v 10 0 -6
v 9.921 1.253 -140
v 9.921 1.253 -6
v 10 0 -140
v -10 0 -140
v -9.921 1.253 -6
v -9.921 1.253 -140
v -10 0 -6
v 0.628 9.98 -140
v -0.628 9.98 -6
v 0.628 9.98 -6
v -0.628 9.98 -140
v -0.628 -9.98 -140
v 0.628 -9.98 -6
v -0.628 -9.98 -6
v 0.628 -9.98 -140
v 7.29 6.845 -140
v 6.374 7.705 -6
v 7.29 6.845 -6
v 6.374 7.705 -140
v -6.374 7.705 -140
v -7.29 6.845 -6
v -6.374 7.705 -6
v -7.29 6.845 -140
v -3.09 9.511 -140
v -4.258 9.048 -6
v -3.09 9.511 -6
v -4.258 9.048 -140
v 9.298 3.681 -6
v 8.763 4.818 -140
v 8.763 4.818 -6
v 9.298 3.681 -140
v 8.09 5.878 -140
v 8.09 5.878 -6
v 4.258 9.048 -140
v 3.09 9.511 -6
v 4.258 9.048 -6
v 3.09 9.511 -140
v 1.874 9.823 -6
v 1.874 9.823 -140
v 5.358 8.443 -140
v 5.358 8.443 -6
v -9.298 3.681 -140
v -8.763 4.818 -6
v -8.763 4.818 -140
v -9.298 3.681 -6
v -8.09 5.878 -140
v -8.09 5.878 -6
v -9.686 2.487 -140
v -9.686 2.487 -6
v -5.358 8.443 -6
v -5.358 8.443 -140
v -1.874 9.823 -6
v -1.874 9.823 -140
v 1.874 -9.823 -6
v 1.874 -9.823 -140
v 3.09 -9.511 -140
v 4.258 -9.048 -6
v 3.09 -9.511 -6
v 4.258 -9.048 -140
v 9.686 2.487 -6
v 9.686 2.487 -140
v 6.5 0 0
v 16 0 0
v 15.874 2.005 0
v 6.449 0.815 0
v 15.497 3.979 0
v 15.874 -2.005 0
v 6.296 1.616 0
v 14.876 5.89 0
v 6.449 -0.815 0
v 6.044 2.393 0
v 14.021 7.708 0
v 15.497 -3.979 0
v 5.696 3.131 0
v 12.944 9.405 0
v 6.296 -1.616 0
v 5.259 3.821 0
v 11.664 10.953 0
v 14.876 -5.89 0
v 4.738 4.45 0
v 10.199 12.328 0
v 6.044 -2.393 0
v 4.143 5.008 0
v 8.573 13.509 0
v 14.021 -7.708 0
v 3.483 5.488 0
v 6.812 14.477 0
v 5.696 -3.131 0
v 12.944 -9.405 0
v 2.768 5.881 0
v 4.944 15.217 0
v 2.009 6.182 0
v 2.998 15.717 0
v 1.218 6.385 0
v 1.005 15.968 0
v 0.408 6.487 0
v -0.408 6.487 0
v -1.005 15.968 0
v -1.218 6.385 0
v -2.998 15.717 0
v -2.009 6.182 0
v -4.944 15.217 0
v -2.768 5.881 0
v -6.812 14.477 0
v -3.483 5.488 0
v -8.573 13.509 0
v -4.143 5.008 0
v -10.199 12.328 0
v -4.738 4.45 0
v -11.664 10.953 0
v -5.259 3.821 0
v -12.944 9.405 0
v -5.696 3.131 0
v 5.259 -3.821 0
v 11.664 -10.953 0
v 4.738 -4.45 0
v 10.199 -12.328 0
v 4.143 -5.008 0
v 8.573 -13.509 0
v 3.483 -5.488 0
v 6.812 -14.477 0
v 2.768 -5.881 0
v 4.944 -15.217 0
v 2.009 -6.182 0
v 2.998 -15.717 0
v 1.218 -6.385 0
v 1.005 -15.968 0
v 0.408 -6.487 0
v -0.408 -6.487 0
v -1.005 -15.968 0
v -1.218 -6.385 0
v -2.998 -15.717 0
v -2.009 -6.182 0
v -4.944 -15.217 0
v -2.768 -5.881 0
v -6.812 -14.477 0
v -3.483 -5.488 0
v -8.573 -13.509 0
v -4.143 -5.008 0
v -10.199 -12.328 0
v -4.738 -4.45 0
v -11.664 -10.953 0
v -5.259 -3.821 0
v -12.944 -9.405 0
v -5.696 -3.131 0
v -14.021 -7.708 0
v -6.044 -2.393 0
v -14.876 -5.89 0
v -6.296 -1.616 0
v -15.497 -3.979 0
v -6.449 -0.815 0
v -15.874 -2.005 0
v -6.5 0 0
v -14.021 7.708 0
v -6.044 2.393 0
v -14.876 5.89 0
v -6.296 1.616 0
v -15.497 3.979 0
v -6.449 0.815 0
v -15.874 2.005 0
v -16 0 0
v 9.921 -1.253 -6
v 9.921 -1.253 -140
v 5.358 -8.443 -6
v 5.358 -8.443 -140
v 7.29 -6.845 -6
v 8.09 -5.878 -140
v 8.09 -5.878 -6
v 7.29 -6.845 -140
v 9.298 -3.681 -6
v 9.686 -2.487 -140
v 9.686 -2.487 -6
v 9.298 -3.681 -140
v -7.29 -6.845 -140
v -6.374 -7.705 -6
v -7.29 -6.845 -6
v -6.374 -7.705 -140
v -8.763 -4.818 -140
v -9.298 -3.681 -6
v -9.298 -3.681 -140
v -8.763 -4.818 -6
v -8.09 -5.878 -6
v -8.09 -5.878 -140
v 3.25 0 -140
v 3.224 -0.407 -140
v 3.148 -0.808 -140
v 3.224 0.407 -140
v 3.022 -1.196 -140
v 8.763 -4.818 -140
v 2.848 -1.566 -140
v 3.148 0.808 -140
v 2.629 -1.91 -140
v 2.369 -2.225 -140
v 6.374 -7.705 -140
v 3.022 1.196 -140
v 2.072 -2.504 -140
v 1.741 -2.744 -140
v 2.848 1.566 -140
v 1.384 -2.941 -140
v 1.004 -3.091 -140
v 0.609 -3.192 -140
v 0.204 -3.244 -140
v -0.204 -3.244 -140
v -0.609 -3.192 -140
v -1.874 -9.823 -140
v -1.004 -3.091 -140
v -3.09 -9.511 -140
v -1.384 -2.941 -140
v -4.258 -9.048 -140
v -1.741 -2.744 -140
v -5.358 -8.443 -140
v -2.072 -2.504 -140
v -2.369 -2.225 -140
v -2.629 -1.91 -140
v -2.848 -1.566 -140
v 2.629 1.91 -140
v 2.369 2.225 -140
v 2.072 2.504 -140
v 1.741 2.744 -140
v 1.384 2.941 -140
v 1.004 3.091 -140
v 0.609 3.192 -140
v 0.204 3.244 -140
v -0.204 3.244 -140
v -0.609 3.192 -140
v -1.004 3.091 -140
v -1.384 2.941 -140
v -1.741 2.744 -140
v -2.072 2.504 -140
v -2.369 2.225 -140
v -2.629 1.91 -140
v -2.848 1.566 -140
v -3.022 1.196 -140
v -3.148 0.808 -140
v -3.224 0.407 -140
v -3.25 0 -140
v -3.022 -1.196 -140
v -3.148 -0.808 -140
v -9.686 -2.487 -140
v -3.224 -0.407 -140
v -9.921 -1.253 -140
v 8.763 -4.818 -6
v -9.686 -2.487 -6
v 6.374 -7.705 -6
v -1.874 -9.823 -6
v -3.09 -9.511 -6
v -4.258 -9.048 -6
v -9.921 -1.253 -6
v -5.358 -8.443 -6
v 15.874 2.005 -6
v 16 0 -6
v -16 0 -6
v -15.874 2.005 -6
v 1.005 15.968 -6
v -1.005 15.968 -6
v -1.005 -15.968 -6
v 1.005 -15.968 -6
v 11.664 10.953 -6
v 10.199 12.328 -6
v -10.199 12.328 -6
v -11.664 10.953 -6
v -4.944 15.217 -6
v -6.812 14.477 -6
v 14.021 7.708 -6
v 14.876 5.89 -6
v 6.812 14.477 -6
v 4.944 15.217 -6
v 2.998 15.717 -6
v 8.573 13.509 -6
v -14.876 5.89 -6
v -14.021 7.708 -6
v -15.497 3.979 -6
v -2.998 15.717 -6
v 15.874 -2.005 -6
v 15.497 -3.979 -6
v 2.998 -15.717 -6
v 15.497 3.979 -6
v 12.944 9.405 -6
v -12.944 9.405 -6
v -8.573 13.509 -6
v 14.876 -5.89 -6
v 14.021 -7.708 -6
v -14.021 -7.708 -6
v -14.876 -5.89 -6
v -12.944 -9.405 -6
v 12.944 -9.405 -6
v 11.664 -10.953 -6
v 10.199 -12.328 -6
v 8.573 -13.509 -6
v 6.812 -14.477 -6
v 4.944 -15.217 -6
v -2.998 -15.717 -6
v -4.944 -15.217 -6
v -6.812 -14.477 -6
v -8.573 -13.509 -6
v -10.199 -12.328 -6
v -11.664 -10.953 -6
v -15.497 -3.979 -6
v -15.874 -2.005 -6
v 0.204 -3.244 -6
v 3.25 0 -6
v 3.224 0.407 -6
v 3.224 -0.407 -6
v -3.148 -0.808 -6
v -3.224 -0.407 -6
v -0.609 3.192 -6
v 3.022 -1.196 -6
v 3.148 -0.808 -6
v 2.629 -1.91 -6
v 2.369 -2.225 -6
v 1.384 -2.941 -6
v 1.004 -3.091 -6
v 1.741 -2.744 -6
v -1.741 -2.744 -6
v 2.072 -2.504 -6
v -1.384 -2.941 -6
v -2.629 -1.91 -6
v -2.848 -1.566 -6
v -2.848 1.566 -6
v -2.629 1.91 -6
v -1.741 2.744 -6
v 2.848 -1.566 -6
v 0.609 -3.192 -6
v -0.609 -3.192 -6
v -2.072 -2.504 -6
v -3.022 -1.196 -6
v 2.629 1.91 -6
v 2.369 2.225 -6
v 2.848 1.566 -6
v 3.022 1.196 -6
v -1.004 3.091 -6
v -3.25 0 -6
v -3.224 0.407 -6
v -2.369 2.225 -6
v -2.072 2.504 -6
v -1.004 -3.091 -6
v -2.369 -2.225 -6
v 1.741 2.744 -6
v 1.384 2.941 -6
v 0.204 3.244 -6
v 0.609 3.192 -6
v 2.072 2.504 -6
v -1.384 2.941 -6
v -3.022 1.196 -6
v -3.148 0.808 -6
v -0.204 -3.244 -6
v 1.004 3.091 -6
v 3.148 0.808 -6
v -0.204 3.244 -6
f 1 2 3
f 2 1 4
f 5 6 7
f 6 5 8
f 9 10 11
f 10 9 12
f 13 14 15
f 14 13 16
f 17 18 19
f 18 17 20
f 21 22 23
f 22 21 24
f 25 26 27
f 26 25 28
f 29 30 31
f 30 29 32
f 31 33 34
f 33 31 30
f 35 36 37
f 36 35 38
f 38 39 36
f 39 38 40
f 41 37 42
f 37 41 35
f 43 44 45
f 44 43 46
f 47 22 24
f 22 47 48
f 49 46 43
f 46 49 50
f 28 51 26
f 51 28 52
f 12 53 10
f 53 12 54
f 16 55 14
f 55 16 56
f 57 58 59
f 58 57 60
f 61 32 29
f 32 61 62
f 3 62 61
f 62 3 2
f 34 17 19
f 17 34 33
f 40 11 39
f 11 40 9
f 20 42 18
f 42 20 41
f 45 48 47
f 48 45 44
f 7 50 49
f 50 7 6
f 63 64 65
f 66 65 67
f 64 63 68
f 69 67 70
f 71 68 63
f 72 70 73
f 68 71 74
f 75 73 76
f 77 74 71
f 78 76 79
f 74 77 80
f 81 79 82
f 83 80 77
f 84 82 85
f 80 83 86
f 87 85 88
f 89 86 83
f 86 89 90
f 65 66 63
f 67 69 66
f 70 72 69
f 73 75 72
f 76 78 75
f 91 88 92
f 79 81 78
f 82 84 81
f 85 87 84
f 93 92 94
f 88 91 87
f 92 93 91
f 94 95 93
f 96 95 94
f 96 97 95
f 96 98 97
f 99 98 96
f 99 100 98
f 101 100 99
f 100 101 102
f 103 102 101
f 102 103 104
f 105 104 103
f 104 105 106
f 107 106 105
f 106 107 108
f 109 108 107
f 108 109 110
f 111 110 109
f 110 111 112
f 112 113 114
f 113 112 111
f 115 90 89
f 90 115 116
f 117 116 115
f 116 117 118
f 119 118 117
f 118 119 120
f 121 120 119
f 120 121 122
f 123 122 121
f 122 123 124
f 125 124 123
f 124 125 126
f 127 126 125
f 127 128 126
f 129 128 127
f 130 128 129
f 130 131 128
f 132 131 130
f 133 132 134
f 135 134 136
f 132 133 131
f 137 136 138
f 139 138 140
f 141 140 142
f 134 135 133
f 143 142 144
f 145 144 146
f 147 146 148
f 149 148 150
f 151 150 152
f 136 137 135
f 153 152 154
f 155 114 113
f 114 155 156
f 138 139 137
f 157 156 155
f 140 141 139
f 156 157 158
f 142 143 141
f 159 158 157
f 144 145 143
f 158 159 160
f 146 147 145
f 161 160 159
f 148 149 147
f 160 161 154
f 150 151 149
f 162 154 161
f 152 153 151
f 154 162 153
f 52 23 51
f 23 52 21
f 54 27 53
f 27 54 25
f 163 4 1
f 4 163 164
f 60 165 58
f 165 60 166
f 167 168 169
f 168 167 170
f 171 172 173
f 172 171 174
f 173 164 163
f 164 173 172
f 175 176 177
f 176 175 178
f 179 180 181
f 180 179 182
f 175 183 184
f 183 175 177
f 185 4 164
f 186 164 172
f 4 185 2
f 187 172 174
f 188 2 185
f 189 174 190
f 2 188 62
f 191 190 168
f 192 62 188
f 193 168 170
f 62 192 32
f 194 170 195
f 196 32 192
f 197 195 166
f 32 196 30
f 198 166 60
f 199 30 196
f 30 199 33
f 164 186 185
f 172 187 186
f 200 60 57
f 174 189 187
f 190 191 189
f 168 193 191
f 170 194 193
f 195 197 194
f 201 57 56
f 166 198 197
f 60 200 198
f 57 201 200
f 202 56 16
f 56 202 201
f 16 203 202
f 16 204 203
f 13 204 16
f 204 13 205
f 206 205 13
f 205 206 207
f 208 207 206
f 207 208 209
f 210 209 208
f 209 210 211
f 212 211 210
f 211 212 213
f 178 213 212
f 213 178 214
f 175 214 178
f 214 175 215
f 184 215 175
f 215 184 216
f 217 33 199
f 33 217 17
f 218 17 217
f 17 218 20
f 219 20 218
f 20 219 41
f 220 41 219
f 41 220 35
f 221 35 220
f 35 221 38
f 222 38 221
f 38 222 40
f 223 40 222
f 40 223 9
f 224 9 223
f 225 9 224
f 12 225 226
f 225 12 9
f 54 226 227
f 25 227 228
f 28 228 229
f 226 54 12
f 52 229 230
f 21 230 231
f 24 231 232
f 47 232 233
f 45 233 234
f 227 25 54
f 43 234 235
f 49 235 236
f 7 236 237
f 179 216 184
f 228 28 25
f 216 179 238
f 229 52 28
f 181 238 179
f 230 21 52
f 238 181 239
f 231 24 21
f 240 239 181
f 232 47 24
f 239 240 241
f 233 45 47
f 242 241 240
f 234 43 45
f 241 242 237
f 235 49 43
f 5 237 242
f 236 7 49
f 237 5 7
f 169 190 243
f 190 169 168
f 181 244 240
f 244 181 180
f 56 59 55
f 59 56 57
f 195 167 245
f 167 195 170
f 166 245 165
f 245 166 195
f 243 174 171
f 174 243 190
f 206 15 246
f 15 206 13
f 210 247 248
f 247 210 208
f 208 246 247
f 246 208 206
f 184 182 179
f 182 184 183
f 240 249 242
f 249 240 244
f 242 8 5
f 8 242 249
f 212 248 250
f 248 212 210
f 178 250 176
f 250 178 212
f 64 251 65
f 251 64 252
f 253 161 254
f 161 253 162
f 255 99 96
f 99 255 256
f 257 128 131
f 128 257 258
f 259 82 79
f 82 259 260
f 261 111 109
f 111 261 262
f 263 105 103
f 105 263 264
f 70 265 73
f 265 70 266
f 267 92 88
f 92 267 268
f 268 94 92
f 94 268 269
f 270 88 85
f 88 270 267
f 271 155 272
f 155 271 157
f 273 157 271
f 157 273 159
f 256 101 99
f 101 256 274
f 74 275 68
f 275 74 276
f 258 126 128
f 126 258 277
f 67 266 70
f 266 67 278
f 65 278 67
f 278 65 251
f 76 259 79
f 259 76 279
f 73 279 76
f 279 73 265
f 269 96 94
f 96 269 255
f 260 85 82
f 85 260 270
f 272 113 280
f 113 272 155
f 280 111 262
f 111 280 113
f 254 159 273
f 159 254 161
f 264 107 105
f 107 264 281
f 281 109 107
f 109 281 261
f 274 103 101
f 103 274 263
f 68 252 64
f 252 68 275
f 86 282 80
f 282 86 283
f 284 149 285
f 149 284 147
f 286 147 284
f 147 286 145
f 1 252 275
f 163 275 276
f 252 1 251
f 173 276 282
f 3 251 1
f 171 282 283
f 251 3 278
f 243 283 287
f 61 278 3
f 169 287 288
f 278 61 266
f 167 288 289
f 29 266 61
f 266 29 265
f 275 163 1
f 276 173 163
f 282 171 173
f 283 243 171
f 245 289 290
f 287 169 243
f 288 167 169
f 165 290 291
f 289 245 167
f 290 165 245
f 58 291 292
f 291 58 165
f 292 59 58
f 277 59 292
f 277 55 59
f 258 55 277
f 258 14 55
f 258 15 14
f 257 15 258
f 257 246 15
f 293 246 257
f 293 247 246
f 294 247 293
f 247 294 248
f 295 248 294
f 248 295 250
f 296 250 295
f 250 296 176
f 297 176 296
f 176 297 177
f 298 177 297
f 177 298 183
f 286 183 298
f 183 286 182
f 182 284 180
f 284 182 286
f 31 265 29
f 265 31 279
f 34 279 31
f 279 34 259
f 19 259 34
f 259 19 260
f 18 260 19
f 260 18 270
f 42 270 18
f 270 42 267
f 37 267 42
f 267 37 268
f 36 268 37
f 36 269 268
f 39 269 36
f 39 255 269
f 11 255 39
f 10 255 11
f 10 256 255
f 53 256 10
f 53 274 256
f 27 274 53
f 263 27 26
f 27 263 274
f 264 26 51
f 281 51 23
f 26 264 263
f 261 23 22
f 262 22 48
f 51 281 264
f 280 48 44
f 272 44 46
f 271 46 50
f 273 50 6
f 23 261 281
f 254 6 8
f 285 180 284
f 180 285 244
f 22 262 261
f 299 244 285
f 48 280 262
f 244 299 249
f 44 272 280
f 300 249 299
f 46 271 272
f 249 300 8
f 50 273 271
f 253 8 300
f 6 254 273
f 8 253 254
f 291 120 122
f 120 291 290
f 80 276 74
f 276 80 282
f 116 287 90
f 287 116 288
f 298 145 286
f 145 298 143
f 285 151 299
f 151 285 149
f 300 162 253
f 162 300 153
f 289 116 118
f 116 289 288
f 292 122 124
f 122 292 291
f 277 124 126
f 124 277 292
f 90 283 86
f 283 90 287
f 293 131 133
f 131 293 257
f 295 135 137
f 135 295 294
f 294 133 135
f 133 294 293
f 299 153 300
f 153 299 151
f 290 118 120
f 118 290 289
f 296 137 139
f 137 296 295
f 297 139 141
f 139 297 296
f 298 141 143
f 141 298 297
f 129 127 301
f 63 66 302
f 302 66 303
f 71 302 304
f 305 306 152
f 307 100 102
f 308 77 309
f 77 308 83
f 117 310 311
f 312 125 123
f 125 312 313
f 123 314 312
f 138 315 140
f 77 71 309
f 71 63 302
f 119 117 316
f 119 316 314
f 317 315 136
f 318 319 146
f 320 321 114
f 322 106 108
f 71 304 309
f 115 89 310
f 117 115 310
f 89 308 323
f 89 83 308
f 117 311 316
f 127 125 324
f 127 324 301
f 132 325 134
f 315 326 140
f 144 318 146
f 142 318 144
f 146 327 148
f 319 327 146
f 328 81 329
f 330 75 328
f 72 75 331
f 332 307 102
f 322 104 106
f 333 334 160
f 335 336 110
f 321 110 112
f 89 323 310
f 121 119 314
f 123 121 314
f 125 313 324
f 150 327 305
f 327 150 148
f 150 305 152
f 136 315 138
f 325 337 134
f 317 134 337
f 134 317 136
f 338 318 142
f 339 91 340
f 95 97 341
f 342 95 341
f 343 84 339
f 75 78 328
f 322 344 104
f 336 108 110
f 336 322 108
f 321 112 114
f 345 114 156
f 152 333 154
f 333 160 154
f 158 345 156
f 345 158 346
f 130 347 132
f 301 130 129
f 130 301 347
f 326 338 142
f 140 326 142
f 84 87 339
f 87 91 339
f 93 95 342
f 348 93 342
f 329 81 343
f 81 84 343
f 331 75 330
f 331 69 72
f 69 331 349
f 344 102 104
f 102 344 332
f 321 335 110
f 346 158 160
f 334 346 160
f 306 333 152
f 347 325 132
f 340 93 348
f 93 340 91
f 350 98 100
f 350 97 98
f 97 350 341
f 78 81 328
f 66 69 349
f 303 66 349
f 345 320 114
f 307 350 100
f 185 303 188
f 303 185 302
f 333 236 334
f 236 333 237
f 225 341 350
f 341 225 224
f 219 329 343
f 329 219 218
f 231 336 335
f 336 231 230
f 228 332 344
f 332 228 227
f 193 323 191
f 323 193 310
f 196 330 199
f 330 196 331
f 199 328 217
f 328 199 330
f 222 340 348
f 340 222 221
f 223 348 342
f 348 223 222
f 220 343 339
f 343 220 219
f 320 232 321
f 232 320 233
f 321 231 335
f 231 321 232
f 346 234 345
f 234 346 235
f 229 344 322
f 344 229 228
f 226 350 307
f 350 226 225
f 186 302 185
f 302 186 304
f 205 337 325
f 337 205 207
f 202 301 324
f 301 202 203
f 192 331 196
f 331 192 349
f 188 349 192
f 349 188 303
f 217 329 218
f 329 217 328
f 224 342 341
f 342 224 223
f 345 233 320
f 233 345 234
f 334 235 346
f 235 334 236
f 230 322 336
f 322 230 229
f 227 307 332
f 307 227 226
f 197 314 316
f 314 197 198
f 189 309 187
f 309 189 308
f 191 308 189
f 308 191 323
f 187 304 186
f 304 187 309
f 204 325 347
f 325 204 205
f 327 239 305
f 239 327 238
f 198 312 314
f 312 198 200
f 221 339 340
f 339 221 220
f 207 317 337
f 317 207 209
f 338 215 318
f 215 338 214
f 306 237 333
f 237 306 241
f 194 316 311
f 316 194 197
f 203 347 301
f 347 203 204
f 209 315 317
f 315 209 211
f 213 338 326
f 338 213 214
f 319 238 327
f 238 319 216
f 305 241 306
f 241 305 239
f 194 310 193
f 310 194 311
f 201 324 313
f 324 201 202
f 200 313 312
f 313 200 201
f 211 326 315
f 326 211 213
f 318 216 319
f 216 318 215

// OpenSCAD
$fn = 50;


difference() {
	union() {
		translate(v = [0, 0, -140.0000000000]) {
			cylinder(h = 140, r = 10.0000000000);
		}
		translate(v = [0, 0, -6.0000000000]) {
			cylinder(h = 6, r = 16.0000000000);
		}
	}
	union() {
		translate(v = [0, 0, 0]) {
			rotate(a = [0, 0, 0]) {
				difference() {
					union() {
						#translate(v = [0, 0, -140.0000000000]) {
							cylinder(h = 140, r = 2.2500000000);
						}
						#translate(v = [0, 0, -6]) {
							cylinder(h = 6, r1 = 3.2500000000, r2 = 6.5000000000);
						}
						#translate(v = [0, 0, -140.0000000000]) {
							cylinder(h = 140, r = 3.2500000000);
						}
						#translate(v = [0, 0, -140.0000000000]) {
							cylinder(h = 140, r = 2.2500000000);
						}
					}
					union();
				}
			}
		}
	}
}
